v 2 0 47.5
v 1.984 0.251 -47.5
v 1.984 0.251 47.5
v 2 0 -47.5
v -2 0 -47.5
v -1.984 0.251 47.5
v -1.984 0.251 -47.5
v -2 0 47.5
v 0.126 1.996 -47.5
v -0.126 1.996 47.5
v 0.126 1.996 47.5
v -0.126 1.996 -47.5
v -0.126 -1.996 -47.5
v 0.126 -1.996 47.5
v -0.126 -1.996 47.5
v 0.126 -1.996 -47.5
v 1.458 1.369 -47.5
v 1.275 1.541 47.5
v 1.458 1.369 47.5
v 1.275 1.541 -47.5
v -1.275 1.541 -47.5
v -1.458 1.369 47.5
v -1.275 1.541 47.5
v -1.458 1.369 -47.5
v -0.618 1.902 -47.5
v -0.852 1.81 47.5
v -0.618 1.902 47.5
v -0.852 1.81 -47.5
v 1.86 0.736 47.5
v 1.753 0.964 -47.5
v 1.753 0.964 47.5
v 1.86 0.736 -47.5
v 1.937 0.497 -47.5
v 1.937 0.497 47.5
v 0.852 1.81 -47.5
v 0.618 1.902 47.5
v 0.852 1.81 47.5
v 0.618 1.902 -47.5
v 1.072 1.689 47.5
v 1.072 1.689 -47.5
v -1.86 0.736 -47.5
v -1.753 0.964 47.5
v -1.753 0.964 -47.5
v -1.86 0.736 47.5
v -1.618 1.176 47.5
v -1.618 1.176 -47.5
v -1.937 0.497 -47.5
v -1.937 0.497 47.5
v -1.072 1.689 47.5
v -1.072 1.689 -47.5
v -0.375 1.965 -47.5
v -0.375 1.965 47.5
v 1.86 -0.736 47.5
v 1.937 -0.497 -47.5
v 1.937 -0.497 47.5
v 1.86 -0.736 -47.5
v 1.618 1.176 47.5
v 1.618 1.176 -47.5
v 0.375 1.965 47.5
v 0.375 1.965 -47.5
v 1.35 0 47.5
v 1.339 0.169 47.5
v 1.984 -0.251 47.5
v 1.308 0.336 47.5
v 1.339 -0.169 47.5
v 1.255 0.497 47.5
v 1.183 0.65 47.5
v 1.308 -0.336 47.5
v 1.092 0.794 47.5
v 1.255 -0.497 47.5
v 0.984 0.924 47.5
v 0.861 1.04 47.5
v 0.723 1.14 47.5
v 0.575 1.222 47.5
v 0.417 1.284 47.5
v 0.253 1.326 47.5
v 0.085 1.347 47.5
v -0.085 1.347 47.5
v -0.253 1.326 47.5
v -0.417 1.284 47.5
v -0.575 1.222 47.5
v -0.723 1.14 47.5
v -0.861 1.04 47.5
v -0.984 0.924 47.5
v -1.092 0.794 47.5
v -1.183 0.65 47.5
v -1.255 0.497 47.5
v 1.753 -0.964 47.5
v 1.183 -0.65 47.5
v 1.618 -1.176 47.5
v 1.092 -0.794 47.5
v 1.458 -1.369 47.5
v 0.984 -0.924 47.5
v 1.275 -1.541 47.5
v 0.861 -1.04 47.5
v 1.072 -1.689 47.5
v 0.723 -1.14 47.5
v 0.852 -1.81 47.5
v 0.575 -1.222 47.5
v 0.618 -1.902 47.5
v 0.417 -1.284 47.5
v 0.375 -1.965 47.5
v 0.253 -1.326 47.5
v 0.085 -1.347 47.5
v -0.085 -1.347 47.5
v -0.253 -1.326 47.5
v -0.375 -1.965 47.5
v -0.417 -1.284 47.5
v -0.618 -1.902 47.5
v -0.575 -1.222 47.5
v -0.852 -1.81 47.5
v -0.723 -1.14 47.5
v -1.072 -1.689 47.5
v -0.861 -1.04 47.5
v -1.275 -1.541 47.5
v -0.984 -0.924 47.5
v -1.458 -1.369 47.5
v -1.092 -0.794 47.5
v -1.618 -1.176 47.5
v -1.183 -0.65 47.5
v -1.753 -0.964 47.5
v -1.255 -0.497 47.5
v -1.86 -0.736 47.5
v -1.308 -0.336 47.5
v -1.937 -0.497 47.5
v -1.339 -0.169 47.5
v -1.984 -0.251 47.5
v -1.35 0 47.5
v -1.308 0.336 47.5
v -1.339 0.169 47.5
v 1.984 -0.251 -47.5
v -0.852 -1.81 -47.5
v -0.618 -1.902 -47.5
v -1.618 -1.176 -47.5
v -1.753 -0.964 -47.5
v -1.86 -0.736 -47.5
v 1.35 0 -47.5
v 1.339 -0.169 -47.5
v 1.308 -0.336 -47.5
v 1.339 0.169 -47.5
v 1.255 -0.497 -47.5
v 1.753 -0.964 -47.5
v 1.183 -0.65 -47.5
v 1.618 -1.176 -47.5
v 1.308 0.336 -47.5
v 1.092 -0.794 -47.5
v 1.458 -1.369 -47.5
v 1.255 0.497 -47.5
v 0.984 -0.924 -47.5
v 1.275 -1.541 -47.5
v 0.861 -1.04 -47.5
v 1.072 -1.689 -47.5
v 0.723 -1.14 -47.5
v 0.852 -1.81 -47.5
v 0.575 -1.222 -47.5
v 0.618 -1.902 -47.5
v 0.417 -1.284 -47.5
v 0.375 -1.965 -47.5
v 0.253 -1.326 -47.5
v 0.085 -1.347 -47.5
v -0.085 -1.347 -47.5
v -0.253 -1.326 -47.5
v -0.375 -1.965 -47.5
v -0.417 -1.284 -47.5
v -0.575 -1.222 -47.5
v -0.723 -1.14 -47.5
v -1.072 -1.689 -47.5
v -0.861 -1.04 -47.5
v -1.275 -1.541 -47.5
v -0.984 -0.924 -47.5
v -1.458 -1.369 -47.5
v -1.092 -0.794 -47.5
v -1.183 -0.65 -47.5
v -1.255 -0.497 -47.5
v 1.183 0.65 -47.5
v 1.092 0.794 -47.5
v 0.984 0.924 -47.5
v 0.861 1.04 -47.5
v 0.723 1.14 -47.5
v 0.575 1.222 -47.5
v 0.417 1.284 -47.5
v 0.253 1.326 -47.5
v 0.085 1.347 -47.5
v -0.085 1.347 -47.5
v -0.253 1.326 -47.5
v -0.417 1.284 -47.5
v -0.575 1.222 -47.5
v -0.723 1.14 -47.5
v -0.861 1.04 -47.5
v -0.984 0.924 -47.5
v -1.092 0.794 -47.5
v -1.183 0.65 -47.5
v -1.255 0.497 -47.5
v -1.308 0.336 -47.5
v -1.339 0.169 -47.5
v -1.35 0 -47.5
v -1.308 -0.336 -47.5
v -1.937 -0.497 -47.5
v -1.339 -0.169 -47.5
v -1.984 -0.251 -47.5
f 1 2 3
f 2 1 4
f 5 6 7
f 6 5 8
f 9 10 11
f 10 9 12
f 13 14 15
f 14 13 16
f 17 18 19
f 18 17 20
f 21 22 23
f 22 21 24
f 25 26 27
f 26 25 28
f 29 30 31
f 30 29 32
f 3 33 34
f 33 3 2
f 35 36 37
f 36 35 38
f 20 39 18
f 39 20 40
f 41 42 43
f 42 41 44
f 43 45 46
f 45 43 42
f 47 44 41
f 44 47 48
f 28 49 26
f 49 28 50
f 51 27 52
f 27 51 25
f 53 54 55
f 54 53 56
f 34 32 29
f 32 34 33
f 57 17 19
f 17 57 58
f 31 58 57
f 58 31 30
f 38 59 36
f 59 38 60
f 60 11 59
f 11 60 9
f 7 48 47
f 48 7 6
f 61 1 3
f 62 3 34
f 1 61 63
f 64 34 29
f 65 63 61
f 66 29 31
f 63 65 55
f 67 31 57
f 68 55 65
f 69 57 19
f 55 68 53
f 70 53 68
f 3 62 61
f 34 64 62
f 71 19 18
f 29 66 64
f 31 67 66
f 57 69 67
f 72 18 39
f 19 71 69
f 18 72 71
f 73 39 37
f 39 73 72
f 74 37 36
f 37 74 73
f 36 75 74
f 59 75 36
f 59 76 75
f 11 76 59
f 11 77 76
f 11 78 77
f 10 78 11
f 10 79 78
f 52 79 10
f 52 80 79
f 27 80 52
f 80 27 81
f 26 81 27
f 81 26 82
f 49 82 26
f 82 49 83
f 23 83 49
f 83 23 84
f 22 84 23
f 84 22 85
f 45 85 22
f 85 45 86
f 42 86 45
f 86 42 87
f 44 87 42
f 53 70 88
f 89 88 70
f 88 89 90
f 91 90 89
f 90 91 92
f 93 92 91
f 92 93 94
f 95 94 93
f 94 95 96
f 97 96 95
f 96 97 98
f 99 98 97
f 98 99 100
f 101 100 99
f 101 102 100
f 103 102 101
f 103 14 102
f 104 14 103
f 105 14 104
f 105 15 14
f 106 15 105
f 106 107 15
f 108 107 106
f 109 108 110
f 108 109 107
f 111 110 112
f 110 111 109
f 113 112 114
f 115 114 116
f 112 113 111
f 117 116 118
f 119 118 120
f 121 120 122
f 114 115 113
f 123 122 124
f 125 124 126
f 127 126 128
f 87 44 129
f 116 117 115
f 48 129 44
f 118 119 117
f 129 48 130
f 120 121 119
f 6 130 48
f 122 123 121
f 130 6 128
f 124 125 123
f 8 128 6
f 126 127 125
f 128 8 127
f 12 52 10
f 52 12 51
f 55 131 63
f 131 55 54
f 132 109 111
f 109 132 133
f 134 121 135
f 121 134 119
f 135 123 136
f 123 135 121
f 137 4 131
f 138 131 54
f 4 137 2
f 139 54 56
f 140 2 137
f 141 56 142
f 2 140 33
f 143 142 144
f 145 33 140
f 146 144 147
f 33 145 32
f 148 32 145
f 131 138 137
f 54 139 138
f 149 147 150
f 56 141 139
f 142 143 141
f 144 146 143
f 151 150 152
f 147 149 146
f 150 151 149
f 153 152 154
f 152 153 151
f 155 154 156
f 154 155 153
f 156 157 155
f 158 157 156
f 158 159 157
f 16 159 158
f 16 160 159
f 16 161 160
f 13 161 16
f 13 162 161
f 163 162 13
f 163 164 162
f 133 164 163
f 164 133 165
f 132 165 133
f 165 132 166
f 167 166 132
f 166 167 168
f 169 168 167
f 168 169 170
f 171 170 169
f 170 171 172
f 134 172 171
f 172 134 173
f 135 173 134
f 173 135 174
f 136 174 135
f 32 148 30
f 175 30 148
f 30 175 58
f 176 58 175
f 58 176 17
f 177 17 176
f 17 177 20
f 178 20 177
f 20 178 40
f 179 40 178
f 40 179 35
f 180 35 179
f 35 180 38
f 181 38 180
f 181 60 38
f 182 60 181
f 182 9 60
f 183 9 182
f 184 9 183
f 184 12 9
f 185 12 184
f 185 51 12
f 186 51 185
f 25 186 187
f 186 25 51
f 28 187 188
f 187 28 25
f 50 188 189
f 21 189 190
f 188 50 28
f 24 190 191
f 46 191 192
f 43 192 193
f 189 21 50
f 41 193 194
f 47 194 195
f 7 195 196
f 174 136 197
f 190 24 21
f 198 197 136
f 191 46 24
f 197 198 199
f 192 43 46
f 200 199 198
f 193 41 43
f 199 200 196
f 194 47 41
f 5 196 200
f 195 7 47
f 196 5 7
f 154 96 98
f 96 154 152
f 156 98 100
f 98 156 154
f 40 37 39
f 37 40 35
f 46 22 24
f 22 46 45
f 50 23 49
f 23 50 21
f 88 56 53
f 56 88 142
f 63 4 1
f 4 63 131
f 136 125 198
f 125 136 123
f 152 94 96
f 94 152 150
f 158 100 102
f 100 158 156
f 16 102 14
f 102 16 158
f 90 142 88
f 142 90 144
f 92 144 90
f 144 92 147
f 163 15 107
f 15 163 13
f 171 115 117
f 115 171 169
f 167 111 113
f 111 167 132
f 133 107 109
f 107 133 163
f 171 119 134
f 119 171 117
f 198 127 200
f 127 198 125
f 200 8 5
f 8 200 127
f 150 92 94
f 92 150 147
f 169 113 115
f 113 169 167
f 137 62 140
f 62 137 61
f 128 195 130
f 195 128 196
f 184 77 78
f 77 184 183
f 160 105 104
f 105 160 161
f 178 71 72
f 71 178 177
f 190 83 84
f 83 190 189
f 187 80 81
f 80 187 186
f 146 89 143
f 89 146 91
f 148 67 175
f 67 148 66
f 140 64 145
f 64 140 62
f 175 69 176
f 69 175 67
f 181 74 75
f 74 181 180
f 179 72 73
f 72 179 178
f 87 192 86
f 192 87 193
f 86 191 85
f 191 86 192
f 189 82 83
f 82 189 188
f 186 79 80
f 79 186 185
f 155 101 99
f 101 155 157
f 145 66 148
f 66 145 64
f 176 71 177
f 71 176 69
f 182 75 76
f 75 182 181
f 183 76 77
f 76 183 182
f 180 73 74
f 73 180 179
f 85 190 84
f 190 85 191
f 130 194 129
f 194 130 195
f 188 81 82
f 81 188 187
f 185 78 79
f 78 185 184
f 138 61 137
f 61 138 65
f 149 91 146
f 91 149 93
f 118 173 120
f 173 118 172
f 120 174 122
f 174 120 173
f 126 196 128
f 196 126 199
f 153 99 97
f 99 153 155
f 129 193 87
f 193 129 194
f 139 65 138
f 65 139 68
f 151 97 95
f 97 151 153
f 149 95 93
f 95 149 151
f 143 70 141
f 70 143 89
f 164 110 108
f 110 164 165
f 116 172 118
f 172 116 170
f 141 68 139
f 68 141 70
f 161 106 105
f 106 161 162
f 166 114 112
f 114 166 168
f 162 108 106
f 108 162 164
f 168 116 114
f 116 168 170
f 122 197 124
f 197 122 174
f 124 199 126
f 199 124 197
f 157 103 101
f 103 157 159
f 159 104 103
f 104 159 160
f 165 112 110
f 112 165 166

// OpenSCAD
$fn = 50;


difference() {
	union() {
		translate(v = [0, 0, -47.5000000000]) {
			cylinder(h = 95, r = 2.0000000000);
		}
	}
	union() {
		translate(v = [0, 0, -100.0000000000]) {
			cylinder(h = 200, r = 1.3500000000);
		}
	}
}
